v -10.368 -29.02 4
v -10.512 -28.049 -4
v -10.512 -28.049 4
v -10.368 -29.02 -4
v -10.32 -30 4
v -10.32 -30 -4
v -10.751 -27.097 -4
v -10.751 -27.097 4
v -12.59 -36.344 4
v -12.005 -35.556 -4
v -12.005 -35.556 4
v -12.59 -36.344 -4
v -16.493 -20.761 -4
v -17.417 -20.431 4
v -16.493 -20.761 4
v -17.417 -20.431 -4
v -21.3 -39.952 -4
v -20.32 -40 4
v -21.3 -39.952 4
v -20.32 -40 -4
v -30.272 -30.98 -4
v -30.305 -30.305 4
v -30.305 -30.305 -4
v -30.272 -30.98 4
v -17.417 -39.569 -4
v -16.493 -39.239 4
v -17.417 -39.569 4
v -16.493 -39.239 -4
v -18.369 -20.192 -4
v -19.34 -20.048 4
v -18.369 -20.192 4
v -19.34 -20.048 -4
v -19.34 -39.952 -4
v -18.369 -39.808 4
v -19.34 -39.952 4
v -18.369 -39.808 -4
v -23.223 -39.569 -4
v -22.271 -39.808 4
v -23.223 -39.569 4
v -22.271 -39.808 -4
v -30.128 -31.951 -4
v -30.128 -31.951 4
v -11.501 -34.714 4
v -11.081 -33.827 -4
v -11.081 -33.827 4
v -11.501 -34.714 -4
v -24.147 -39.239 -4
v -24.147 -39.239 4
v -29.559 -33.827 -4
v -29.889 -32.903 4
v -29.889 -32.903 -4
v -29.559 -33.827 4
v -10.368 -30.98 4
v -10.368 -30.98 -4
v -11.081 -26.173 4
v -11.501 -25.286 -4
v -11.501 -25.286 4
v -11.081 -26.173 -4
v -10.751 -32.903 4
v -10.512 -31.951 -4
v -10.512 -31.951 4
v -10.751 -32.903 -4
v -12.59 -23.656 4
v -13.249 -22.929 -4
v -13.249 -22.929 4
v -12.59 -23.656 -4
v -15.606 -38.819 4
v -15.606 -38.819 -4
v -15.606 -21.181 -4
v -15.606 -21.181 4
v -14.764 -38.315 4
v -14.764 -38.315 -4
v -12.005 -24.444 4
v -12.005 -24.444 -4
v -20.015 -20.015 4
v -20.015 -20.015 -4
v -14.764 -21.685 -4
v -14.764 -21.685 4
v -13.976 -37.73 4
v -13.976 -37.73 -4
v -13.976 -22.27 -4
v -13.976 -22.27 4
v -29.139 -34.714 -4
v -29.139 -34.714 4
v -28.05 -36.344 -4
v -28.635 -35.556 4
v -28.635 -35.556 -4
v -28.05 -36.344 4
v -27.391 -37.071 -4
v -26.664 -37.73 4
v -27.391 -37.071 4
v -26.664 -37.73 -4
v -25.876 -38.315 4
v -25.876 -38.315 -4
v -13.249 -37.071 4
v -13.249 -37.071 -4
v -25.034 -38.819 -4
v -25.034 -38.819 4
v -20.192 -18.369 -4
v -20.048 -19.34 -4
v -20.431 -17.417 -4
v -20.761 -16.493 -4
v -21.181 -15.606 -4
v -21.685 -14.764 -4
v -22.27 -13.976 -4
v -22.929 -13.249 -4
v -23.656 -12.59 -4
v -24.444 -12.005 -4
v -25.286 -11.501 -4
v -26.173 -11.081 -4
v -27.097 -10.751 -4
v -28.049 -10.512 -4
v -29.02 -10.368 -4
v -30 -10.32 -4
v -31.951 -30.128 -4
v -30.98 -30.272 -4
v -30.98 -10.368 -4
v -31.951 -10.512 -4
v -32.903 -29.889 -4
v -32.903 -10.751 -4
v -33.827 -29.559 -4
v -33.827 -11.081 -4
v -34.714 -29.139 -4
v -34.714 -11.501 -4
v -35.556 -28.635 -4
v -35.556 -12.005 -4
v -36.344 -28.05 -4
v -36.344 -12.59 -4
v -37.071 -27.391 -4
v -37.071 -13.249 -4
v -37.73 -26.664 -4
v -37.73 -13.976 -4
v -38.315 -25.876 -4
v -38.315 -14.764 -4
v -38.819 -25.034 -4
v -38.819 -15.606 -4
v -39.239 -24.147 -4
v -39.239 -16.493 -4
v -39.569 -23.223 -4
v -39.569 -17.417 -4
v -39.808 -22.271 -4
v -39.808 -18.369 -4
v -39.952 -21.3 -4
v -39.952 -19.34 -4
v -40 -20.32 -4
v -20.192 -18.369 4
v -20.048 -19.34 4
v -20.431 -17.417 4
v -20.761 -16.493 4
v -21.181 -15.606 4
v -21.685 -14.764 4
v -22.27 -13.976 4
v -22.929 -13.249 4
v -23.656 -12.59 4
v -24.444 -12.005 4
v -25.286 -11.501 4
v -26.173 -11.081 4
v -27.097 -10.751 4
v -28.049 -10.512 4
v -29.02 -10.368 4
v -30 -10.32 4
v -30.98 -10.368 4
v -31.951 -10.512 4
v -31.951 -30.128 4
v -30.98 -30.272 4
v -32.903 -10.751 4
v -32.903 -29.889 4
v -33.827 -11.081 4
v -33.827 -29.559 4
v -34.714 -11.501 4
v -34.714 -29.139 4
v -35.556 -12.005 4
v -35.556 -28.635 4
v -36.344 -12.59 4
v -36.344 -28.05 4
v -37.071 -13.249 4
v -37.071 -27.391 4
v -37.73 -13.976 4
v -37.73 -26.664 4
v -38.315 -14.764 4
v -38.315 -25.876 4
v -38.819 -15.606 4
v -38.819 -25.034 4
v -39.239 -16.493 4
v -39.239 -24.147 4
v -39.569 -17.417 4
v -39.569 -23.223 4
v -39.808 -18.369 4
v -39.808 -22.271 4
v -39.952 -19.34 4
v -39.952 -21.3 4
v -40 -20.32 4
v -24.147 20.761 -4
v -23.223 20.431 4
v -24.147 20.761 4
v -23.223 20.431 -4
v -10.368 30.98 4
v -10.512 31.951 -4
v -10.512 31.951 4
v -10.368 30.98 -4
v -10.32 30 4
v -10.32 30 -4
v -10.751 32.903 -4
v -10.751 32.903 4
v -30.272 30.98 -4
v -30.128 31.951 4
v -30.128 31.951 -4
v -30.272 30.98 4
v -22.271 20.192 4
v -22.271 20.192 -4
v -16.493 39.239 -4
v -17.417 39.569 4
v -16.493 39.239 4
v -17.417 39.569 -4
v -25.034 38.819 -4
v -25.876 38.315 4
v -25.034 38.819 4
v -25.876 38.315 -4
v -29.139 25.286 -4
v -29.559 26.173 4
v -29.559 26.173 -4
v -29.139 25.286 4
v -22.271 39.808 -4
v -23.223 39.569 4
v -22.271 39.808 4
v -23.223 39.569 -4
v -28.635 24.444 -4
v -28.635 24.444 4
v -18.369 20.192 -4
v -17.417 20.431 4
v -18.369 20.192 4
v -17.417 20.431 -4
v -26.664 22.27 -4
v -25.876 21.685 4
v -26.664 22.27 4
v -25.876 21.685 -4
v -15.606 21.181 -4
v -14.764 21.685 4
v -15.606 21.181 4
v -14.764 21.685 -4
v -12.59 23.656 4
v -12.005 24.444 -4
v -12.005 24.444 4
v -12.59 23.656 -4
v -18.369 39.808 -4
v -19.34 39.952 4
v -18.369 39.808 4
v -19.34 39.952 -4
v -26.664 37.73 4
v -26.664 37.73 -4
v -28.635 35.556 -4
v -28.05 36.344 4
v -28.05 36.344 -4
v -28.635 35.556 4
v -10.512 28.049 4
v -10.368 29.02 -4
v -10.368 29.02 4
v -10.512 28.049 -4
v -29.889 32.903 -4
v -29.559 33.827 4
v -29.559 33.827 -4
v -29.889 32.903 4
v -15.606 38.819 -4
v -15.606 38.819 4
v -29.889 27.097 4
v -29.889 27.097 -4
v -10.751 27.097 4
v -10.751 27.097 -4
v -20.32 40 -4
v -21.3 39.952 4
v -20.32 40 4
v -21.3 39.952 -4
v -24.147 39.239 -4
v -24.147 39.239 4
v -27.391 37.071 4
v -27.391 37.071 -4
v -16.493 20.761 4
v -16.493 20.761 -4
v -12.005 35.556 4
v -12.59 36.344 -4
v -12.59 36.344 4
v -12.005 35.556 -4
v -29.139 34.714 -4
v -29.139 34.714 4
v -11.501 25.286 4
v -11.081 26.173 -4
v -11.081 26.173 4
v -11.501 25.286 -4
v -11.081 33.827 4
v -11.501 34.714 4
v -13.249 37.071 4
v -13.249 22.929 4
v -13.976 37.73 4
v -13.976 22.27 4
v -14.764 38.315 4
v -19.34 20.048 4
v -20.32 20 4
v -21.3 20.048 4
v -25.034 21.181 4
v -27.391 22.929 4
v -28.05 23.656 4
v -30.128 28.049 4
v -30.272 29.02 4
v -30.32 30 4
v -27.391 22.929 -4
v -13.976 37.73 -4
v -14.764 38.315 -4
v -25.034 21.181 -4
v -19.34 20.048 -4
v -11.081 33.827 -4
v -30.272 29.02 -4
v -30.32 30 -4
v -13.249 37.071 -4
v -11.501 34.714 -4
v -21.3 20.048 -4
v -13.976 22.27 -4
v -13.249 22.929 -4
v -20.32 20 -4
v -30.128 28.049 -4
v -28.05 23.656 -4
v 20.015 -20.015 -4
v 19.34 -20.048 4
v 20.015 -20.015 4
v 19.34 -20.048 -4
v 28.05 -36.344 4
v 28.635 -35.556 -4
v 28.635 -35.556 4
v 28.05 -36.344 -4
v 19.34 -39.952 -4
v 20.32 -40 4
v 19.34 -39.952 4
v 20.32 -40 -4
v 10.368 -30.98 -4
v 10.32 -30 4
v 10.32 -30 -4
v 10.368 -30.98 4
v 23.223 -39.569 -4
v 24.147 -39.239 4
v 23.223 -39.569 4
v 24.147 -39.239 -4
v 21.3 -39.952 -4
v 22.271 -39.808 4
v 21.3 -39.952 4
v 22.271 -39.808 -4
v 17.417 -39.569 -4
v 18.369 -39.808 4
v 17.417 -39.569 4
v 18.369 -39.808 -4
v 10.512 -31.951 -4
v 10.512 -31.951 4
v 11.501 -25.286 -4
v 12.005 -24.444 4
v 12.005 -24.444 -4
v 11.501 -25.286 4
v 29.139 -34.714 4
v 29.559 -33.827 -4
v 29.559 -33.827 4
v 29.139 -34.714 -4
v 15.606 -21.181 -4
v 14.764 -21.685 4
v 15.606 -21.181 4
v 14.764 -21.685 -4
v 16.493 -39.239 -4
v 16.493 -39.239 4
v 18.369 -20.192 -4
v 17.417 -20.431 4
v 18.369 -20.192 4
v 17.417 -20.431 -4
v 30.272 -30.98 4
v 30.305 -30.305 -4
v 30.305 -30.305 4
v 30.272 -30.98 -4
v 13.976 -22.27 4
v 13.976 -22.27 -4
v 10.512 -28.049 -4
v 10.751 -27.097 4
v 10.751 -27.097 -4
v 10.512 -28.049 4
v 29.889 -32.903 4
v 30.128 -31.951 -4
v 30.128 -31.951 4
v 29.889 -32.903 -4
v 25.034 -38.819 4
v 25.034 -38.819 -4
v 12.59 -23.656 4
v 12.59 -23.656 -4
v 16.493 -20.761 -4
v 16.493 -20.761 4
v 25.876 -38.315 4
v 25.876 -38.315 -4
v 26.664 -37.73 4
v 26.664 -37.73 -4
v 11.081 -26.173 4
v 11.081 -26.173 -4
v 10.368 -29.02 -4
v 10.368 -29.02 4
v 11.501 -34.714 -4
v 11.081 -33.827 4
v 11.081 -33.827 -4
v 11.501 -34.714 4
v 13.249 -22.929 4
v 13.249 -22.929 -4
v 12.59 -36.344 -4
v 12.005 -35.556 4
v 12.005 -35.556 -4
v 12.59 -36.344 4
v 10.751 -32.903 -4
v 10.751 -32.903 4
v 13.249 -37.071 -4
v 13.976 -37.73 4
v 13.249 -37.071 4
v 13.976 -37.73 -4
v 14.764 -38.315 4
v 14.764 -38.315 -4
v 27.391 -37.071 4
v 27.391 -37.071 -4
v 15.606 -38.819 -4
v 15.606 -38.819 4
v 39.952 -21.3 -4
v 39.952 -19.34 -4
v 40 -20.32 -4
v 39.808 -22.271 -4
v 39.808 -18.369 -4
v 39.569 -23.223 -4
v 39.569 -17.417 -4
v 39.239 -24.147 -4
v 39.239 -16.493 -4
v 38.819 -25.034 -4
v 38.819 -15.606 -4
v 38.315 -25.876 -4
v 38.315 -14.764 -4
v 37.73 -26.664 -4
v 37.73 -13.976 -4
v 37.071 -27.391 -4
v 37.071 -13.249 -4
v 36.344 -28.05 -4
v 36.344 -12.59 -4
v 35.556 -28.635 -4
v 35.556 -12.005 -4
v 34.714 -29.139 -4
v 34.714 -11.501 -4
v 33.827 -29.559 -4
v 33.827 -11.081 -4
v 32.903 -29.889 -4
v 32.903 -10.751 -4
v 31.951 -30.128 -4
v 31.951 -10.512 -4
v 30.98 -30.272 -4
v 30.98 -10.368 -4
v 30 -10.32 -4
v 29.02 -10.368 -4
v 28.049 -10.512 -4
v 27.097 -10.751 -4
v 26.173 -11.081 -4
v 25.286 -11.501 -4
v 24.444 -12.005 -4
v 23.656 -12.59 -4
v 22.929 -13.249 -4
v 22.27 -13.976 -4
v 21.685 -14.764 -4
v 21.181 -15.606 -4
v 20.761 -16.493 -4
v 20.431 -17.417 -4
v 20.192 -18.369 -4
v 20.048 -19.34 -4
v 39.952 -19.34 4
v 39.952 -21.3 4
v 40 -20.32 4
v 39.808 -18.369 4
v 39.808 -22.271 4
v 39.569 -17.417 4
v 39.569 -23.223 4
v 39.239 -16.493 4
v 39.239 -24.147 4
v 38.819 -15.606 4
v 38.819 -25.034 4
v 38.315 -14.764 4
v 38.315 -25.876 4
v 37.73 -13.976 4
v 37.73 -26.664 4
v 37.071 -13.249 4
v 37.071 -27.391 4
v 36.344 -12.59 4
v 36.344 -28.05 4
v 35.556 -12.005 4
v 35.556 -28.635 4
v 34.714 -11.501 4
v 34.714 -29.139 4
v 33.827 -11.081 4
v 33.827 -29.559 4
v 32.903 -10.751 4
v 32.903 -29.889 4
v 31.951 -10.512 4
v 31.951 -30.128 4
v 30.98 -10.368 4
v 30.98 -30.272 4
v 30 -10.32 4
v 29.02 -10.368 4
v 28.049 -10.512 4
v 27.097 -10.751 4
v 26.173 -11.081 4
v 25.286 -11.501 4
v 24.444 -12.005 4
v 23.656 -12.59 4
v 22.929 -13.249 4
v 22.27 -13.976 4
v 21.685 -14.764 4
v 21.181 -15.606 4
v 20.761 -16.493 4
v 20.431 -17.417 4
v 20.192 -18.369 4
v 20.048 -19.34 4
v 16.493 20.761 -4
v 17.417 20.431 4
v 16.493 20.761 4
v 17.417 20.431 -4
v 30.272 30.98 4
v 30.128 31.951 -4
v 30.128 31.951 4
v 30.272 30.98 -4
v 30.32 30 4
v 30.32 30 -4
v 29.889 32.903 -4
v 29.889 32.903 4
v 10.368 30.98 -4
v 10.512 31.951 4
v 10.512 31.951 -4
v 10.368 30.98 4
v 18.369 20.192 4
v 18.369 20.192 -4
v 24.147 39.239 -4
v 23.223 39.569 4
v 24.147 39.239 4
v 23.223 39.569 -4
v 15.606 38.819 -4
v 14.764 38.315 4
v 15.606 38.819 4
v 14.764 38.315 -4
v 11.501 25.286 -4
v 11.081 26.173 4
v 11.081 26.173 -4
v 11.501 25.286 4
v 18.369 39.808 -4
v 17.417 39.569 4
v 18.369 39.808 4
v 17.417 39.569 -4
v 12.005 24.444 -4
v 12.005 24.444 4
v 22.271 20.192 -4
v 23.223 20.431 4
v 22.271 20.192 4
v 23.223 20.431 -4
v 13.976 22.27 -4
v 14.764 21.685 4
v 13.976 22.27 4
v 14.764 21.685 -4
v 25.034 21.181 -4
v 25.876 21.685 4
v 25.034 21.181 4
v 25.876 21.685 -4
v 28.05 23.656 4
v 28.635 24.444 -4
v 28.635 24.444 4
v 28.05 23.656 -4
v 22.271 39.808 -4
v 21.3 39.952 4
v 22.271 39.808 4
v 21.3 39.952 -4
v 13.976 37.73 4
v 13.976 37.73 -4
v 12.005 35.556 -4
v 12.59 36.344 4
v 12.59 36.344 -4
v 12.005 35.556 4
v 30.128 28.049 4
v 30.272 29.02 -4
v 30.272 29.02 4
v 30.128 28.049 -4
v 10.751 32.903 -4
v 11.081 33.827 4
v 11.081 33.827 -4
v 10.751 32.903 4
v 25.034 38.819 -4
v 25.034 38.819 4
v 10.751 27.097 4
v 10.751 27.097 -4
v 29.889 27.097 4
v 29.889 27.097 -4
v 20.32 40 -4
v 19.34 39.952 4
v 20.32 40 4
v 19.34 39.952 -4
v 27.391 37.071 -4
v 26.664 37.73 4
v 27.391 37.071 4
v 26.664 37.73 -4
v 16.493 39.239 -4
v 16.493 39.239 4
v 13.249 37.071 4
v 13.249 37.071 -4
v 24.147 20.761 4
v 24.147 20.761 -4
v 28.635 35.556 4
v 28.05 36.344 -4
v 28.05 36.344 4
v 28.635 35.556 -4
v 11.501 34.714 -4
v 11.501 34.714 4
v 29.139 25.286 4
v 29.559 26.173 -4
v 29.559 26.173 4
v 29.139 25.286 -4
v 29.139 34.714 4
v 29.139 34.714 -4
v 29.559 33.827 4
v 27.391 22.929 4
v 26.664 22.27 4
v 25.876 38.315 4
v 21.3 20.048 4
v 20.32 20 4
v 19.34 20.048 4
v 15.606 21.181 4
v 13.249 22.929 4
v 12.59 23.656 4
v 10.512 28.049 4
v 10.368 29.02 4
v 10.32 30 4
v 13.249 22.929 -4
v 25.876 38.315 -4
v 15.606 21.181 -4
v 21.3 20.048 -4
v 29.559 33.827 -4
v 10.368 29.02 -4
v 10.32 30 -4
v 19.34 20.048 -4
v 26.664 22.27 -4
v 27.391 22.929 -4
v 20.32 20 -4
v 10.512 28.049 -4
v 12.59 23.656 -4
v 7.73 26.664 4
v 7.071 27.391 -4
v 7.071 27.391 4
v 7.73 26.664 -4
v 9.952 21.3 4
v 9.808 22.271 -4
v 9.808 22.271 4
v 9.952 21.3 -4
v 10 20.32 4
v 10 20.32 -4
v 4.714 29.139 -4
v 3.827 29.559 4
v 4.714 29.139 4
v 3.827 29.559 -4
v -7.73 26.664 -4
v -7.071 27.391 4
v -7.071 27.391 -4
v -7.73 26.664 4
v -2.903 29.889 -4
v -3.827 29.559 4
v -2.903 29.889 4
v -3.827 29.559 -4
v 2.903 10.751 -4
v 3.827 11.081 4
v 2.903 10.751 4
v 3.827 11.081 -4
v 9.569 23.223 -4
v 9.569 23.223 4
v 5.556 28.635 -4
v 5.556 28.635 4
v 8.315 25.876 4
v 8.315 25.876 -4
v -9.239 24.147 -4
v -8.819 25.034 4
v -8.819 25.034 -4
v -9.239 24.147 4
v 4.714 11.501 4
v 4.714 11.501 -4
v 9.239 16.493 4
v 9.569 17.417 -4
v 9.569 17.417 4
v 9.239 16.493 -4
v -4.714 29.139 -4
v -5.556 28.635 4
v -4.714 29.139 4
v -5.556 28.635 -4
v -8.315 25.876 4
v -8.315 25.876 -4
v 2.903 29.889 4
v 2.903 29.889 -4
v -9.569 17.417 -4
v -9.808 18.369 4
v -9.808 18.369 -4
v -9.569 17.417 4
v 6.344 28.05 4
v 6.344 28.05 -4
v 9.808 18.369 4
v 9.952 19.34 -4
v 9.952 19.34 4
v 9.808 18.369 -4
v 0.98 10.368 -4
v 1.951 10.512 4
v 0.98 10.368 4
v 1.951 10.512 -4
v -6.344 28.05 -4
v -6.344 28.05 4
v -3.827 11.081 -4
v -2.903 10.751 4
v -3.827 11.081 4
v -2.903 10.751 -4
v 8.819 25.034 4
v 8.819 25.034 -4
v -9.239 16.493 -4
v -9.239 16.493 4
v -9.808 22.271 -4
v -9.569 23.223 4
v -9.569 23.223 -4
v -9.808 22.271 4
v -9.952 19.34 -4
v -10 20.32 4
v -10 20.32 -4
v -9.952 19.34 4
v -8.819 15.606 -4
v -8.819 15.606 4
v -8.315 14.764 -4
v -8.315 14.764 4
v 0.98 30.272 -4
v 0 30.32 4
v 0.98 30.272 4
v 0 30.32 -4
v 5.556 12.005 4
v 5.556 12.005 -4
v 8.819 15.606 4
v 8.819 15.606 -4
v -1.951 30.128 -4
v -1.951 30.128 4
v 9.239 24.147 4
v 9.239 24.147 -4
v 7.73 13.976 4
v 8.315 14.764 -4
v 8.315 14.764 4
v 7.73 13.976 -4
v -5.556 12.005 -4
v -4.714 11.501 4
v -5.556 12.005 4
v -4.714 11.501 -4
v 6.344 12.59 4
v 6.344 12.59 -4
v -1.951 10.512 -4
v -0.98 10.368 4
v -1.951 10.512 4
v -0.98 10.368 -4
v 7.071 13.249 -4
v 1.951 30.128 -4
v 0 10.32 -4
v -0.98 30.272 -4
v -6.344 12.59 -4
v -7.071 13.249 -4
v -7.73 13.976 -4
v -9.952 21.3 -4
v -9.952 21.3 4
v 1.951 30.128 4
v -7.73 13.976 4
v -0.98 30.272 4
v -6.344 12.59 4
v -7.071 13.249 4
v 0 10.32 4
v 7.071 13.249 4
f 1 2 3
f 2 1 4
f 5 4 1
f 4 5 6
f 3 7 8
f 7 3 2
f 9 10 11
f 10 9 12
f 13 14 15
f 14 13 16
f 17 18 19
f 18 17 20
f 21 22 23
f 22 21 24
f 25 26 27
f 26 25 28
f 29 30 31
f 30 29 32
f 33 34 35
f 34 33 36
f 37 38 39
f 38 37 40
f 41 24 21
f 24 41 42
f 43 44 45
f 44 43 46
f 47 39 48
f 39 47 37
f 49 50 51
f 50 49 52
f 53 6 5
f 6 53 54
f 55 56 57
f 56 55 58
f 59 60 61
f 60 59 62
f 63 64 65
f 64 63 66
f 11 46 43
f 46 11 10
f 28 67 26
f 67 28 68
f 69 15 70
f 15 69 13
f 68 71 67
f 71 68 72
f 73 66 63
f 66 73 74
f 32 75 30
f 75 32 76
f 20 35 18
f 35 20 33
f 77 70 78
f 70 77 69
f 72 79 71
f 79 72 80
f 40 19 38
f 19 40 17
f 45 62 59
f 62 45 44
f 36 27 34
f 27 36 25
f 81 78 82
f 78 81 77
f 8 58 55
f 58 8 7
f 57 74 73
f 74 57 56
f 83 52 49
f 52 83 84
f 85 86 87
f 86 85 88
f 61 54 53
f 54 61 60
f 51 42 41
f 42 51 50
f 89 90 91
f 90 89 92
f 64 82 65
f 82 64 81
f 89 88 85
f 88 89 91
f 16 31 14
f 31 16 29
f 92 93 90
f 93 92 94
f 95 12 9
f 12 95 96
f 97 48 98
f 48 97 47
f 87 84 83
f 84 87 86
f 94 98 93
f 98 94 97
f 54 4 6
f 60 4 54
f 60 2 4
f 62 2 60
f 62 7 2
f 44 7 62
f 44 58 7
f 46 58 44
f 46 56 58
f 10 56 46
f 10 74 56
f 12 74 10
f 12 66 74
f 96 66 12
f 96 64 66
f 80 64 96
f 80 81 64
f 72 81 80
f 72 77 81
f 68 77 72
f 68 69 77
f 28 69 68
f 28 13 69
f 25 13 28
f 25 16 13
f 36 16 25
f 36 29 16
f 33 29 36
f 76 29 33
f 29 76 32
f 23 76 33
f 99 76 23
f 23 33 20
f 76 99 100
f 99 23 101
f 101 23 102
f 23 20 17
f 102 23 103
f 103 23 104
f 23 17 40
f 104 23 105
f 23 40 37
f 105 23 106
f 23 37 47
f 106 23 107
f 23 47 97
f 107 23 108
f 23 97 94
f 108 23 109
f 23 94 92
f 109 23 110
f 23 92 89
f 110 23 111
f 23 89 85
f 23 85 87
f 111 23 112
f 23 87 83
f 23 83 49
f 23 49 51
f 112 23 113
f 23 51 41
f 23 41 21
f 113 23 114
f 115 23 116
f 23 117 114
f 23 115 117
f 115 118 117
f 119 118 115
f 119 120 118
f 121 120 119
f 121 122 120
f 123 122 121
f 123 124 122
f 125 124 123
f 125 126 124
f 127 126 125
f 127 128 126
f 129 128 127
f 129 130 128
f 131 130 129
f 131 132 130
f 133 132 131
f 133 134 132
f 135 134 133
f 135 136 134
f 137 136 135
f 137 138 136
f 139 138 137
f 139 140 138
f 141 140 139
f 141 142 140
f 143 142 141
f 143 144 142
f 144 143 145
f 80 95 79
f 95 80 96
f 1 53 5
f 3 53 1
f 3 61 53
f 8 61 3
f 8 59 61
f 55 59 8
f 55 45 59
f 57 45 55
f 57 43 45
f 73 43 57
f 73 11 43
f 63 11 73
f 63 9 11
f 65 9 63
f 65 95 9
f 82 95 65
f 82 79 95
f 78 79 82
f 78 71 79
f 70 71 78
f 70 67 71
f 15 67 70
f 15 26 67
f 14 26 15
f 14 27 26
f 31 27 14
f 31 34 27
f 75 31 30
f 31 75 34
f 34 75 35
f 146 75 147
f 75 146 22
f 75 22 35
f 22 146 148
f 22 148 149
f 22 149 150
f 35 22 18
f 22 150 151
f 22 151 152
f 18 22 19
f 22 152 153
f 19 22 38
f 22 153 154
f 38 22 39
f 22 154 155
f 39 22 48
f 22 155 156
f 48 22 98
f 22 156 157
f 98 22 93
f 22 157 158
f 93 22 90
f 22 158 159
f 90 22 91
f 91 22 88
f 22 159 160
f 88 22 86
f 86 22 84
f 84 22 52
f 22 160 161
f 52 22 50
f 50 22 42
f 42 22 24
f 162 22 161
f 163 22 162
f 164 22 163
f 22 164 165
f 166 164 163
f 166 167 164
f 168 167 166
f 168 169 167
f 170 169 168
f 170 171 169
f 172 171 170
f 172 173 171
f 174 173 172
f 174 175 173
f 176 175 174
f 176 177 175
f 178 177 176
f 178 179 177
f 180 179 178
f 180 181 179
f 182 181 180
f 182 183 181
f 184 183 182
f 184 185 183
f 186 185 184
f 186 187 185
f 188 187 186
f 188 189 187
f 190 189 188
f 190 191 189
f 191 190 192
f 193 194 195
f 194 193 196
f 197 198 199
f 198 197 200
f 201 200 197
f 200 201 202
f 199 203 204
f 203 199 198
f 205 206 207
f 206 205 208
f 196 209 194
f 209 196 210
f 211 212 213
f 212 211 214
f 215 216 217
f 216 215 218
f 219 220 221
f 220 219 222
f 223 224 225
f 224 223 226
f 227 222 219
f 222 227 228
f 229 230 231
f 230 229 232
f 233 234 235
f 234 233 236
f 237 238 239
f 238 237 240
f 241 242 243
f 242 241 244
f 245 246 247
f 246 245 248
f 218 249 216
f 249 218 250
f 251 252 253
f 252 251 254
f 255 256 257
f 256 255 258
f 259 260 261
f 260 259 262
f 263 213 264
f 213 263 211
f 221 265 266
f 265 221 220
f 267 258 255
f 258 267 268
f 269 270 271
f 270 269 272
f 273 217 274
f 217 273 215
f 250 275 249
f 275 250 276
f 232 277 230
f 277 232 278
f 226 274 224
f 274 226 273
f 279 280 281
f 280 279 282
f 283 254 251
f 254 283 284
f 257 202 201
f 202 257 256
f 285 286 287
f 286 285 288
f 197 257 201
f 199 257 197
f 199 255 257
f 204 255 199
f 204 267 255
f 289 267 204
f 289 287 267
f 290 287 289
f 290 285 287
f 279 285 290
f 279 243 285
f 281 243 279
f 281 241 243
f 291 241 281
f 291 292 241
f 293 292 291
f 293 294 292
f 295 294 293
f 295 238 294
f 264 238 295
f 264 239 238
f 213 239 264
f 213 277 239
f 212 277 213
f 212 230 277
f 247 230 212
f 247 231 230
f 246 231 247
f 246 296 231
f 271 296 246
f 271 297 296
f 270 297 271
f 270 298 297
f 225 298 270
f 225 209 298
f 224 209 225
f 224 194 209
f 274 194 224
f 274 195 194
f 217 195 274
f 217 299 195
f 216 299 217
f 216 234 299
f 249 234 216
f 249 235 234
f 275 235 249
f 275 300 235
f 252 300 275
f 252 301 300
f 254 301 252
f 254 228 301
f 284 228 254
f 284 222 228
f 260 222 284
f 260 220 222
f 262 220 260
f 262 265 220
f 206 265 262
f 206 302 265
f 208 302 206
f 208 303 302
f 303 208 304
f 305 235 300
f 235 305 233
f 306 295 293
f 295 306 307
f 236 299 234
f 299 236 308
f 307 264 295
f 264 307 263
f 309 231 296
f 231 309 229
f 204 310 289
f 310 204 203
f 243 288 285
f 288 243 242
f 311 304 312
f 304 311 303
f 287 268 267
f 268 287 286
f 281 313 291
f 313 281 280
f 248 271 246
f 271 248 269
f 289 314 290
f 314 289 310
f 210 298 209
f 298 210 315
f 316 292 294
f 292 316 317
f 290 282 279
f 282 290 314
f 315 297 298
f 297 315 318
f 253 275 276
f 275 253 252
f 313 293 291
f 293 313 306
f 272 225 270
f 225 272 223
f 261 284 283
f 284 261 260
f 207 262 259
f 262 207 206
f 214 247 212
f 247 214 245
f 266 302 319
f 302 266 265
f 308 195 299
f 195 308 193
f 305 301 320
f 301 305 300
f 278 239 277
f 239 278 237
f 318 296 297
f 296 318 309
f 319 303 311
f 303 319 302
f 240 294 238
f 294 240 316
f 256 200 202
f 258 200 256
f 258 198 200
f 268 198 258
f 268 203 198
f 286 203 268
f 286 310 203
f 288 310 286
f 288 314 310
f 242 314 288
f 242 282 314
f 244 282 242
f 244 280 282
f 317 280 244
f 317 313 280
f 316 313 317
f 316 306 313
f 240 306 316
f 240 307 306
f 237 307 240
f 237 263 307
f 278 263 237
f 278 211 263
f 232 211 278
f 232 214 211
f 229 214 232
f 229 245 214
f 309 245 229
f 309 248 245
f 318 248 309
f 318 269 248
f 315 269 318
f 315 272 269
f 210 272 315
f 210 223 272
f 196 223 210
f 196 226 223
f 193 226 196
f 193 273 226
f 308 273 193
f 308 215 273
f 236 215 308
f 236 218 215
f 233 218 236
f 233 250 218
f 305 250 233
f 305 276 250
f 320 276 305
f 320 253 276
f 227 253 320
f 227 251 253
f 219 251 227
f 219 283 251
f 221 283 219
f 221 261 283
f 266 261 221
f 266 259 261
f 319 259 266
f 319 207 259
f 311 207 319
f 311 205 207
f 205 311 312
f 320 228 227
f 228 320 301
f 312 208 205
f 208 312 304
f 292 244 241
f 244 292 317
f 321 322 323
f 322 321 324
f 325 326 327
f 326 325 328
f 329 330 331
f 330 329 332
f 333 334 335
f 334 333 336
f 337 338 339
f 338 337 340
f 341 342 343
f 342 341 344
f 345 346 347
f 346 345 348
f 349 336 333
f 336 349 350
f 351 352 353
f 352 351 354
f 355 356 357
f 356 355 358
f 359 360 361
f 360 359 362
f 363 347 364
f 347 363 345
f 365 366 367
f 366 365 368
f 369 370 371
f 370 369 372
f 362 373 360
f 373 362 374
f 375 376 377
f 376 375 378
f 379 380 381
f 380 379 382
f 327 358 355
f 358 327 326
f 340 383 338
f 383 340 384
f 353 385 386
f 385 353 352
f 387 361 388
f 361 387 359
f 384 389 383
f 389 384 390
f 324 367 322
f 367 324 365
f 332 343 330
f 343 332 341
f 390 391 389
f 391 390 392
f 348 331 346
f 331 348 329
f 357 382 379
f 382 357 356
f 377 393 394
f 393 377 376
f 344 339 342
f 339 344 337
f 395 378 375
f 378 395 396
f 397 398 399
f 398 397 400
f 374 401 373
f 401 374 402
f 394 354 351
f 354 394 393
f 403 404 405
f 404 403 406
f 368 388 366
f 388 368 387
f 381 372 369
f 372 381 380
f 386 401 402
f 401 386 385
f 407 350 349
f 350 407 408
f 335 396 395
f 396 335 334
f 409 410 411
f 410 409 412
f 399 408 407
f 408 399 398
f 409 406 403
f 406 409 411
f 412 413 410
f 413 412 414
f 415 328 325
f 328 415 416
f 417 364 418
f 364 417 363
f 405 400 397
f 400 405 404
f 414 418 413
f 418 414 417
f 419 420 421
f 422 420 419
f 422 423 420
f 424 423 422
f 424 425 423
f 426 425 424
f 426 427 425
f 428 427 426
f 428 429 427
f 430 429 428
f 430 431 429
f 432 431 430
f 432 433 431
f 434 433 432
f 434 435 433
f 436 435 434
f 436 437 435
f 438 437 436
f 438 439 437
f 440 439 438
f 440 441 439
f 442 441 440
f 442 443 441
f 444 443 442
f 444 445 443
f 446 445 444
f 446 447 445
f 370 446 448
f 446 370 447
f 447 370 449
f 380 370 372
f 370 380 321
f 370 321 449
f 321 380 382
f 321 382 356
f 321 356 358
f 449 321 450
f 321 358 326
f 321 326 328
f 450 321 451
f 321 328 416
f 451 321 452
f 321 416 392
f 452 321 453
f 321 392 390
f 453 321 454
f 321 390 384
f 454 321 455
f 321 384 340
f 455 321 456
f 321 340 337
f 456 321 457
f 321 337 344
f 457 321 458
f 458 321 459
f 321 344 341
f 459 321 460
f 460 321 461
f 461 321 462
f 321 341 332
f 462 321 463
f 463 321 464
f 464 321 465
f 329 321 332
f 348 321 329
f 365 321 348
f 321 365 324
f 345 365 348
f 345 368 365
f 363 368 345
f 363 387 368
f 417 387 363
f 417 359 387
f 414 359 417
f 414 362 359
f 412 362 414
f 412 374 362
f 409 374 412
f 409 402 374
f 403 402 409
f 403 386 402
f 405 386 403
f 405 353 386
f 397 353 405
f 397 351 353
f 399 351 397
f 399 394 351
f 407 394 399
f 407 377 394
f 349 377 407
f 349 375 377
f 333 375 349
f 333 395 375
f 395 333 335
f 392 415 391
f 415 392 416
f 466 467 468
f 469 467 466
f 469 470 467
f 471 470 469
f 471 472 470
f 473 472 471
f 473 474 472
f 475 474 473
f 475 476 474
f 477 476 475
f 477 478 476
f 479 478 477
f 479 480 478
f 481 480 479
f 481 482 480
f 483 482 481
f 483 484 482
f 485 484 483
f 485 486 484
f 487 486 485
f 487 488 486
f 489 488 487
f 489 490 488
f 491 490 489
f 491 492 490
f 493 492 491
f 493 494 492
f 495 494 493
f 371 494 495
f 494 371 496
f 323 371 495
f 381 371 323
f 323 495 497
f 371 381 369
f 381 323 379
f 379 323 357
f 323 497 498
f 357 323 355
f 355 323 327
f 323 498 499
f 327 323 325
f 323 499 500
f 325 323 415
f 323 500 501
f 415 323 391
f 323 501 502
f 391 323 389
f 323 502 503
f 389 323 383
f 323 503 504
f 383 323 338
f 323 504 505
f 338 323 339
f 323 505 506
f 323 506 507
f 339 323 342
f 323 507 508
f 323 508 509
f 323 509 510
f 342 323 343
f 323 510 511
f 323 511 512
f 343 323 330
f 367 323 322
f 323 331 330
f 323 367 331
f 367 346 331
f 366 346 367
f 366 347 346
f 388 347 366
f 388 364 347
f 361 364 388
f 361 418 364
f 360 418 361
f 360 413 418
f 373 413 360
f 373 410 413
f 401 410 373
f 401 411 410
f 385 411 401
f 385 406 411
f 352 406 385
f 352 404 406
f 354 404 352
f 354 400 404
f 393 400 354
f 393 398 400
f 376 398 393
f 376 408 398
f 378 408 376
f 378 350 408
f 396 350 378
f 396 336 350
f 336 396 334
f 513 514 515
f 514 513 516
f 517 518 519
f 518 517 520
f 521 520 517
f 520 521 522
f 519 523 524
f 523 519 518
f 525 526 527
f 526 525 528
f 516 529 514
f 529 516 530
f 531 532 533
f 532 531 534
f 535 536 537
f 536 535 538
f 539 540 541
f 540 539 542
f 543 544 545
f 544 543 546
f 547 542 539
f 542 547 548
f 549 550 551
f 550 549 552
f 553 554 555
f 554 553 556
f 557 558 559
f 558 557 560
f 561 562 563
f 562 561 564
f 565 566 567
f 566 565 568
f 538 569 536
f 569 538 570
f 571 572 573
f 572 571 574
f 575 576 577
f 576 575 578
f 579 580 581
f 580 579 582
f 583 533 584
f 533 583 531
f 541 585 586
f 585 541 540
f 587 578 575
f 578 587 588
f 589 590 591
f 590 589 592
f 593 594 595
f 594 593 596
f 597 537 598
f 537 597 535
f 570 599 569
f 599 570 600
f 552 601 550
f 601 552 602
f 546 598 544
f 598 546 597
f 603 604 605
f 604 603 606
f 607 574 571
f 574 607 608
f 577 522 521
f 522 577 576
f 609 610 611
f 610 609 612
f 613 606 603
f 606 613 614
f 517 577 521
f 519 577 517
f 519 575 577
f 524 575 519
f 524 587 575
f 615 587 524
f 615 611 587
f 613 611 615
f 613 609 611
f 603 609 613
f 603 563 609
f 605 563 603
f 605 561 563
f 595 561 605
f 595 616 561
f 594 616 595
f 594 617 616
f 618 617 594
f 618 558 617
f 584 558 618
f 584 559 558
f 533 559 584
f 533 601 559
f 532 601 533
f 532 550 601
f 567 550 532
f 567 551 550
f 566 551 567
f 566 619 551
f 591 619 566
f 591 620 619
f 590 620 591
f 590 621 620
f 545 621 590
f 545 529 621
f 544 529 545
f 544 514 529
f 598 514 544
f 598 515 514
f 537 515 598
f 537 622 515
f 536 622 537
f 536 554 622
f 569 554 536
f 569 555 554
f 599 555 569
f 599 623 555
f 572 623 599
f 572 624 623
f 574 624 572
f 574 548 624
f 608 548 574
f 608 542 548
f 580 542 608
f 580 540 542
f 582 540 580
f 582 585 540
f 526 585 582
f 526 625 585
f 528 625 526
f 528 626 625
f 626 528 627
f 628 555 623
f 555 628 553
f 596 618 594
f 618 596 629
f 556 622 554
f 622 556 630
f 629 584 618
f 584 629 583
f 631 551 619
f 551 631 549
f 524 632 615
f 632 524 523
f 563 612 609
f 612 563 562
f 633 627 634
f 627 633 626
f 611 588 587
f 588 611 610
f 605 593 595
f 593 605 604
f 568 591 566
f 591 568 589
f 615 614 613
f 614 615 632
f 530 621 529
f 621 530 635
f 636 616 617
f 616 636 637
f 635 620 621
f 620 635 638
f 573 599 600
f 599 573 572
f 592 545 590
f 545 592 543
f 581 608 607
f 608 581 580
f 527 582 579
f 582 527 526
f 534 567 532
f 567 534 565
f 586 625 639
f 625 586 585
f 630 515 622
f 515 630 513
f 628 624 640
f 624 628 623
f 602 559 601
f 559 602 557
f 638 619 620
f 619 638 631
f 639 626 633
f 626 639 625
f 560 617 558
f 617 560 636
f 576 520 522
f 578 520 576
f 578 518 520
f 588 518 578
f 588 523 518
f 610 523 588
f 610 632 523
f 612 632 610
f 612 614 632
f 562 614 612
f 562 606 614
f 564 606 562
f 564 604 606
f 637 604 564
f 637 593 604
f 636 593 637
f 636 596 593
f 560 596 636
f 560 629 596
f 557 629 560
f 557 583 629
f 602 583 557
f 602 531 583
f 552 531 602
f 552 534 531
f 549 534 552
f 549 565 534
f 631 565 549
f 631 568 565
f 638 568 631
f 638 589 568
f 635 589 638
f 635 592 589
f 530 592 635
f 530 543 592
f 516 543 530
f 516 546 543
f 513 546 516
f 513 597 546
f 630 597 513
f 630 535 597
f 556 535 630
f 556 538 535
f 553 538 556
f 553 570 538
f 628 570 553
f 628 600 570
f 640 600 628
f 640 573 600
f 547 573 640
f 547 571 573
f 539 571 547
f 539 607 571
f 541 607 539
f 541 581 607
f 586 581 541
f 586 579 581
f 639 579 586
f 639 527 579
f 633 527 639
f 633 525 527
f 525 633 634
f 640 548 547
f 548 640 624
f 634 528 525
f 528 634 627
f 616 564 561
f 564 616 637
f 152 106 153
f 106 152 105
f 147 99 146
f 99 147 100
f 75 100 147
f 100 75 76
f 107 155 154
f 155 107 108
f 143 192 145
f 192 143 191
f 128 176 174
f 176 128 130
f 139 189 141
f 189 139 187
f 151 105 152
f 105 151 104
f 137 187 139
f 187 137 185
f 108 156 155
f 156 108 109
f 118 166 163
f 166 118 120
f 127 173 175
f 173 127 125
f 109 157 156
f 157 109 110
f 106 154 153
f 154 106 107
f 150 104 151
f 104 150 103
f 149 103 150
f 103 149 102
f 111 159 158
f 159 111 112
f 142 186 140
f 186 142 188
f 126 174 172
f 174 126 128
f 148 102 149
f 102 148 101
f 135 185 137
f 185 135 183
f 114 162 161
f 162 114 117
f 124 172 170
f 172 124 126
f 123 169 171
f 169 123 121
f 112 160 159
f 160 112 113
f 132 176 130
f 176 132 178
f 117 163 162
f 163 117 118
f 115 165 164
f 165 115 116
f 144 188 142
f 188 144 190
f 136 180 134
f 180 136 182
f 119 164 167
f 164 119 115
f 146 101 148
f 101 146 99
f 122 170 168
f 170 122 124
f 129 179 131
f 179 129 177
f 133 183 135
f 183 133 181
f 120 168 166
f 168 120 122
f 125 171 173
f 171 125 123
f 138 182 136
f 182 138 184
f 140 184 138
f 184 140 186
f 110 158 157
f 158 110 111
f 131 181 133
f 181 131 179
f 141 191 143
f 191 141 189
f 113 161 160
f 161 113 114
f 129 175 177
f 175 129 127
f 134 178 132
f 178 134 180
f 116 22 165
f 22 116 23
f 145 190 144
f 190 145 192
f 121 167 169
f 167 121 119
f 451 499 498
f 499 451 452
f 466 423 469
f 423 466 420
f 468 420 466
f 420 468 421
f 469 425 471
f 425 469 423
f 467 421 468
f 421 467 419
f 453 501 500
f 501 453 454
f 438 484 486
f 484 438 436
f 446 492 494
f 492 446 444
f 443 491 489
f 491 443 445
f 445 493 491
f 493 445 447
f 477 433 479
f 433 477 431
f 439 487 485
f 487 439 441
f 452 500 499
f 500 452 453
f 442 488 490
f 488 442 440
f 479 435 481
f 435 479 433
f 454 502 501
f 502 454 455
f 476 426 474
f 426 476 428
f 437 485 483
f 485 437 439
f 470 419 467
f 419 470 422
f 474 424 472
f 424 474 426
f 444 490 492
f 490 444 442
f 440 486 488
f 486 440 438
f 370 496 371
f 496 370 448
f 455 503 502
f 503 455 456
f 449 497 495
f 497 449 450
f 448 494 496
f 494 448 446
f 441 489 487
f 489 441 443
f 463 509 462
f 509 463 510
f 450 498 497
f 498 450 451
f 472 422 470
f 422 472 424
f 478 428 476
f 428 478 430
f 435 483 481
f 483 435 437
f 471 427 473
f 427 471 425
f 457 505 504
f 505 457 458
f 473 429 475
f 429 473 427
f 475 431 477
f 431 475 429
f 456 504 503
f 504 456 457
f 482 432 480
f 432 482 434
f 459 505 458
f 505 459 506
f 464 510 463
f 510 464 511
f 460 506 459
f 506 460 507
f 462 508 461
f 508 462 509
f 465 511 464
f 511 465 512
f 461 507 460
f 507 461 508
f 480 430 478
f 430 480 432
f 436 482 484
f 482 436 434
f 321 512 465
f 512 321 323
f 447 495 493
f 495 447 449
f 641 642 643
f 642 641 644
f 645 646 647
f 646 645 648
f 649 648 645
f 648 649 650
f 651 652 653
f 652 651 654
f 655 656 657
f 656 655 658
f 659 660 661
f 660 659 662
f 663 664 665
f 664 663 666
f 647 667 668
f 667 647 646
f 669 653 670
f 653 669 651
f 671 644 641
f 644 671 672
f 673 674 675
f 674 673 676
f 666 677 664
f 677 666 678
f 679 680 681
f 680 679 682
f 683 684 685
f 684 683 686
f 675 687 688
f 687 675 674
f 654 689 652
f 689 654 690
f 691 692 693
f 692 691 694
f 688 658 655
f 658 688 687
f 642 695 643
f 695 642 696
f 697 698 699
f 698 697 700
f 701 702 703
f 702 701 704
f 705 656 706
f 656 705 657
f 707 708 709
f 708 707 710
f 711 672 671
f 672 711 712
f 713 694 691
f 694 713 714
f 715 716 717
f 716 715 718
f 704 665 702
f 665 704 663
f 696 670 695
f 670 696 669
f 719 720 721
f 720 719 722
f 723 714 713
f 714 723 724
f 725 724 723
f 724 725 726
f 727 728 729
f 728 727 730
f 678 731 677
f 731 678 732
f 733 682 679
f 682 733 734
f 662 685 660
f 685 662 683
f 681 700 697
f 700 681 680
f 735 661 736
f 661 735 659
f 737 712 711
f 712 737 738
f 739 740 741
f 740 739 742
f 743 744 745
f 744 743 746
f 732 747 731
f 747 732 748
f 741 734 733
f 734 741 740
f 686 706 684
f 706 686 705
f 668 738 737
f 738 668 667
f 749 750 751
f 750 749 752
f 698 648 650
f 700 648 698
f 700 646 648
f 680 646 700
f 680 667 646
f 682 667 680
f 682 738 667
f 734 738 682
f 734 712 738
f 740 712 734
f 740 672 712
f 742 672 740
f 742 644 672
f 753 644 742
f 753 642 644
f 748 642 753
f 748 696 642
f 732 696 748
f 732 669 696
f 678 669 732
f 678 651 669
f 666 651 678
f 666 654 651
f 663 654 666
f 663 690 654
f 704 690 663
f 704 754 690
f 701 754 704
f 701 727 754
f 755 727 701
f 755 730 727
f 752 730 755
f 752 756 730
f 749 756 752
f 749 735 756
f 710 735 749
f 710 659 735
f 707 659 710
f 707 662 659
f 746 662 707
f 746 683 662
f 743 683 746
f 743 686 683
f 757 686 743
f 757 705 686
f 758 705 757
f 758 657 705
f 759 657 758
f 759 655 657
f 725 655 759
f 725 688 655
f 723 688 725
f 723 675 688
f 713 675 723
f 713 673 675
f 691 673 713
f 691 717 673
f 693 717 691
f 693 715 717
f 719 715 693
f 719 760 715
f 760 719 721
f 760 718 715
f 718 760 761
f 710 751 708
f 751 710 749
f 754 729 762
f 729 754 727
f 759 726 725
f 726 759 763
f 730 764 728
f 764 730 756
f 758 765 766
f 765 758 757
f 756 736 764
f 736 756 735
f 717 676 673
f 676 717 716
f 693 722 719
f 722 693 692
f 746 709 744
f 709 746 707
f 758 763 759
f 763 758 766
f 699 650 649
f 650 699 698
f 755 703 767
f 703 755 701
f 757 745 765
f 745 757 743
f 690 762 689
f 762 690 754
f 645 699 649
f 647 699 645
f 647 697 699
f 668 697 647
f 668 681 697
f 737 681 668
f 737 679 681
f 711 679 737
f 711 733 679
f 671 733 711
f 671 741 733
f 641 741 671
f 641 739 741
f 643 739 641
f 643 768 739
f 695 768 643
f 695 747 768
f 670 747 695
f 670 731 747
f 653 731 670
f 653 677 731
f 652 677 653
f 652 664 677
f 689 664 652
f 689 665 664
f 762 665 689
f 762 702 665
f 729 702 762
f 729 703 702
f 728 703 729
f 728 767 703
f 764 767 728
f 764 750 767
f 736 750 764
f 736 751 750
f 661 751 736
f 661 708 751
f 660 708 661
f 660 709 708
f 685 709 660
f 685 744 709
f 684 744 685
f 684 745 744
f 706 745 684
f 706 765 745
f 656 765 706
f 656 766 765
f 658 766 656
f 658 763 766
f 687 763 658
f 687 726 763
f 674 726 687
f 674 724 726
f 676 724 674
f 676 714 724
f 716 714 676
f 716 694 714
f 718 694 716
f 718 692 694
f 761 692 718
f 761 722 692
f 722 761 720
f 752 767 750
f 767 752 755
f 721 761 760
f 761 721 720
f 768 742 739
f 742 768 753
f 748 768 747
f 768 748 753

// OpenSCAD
// file: vslot-2020.scad
// OpenBuilds V-Slot 20x20, millimetres.
// Source: ../../datasheets/openbuilds-vslot-20x20.pdf, page 1.
// Open directly for a short inspection sample; `use` for library modules.
sample_length = 60;
section_only = false;

module vslot_2020_profile(corner_radius=0.5, centre_notch=0.2) {
    // Dimensioned features from drawing.
    half_size = 10;
    mouth_half = 9.16/2;
    throat_half = 6.25/2;
    channel_half = 11/2;
    shoulder_y = half_size - 1.80;
    floor_y = shoulder_y - 4.30;
    // 90-degree V: each face has a 45-degree slope.
    throat_y = half_size - (mouth_half-throat_half);
    // Adjacent diagonal cavity walls straddle y=x. Their normal
    // separation is the specified 1.50 mm web thickness.
    diagonal_offset = 1.50/sqrt(2);
    channel_knee_y = channel_half + diagonal_offset;
    floor_half = floor_y - diagonal_offset;

    // Corner radius and tiny floor-centre notch are visually estimated:
    // the PDF depicts them but does not dimension them.
    difference() {
        offset(r=corner_radius,$fn=24)
            square([20-2*corner_radius,20-2*corner_radius],center=true);
        circle(d=4.20,$fn=64);
        for(a=[0:90:270]) rotate(a)
            polygon([
                [-mouth_half,11], [mouth_half,11],
                [mouth_half,half_size], [throat_half,throat_y],
                [throat_half,shoulder_y], [channel_half,shoulder_y],
                [channel_half,channel_knee_y], [floor_half,floor_y],
                [centre_notch,floor_y], [0,floor_y-centre_notch],
                [-centre_notch,floor_y], [-floor_half,floor_y],
                [-channel_half,channel_knee_y], [-channel_half,shoulder_y],
                [-throat_half,shoulder_y], [-throat_half,throat_y],
                [-mouth_half,half_size]
            ]);
    }
}

module vslot_2020(length=500) {
    assert(length>0,"Rail length must be positive");
    linear_extrude(height=length,convexity=10) vslot_2020_profile();
}

if(section_only) vslot_2020_profile();
else color([0.66,0.71,0.75]) vslot_2020(sample_length);
// file: wheel-spacer.scad
// Nominal 6 mm spacer family, axis Z, wheel face at Z=0.
// Supplier: https://www.makerstore.com.au/product/shim-eccentric-8-6/
// 8 mm AF, 10 mm flange, 5 mm bore, 7.11 mm plate hole, ~0.79 travel.
// Flange/collar thicknesses and 7.08 pilot OD are provisional.
function spacer_eccentricity() = 0.79/2;
function spacer_plate_hole() = 7.11;
module wheel_spacer(eccentric=false,angle=0) {
    e=spacer_eccentricity();
    // Origin stays on the axle; the locating pilot is offset from it.
    rotate([0,0,angle]) difference() {
        if(eccentric) translate([-e,0,0]) union() {
            cylinder(h=5,d=8/cos(30),$fn=6);
            translate([0,0,5]) cylinder(h=1,d=10,$fn=48);
            translate([0,0,6]) cylinder(h=1.5,d=7.08,$fn=48);
        }
        else cylinder(h=6,d=8,$fn=48);
        translate([0,0,-0.1]) cylinder(h=8,d=5,$fn=48);
    }
}
color([0.65,0.69,0.72]) wheel_spacer(true);
// file: vslot-wheel.scad
// Solid V wheel reference: ../../datasheets/solid-v-wheel-drawing.jpg.
// Supplier: https://www.makerstore.com.au/product/wheel-solidv-kit/
// Axis Z, centred at origin. Nominal assembly, not manufacturing CAD.
show_bearings = true;

function vwheel_width() = 10.23; // kit spec; drawing rounds this to 10.20
function vwheel_od() = 23.90;
function vwheel_land() = 5.90;
// Derived tangent fit against the 9.16 mm mouth and 45-degree rail faces.
function vwheel_2020_offset() = 10-9.16/2 + vwheel_od()/2 + vwheel_land()/2;

module vslot_wheel(bearings=true, facets=64) {
    w=vwheel_width();
    r=vwheel_od()/2;
    land=vwheel_land();
    edge_r=r-(w-land)/2; // 45-degree mating chamfers
    color([0.12,0.14,0.16]) rotate_extrude($fn=facets,convexity=6)
        polygon([[8,-w/2],[edge_r,-w/2],[r,-land/2],
                 [r,land/2],[edge_r,w/2],[8,w/2],
                 [8,0.115],[7,0.115],[7,-0.115],[8,-0.115]]);
    // Two nominal 625 bearings: 5 mm bore, 16 mm OD, 5 mm wide.
    // Internal rolling elements omitted; centre shim holds inner races apart.
    if(bearings) {
        for(z=[-w/2,0.115]) translate([0,0,z]) {
            color([0.65,0.69,0.72]) difference() {
                cylinder(h=5,d=16,$fn=facets);
                translate([0,0,-0.01]) cylinder(h=5.02,d=5,$fn=facets);
            }
            for(face=[0,4.95]) color([0.18,0.20,0.22])
                translate([0,0,face]) difference() {
                    cylinder(h=0.05,d=13.5,$fn=facets);
                    translate([0,0,-0.01]) cylinder(h=0.07,d=7.5,$fn=facets);
                }
        }
        color([0.65,0.69,0.72]) difference() {
            cylinder(h=0.23,d=10,center=true,$fn=facets);
            cylinder(h=0.25,d=5,center=true,$fn=facets);
        }
    }
}

vslot_wheel(show_bearings);
// main file
// Cura modifier for compact-carriage.stl: a cylinder round every wheel
// station, the plate's own boss size and thickness, in the plate's
// coordinates. Load with the plate, select both, Merge Models (Ctrl+Alt+G),
// then Per Model Settings on this one: Modify settings for overlaps, Infill
// only, Infill Density 100 %.
use <compact-carriage.scad>
d         = 20;   // compact-carriage.scad boss_r 10
thickness = 8;
spacing   = 60;
for(p=concat(carriage_z_holes(spacing), carriage_x_holes(spacing)))
    translate([p[0], p[1], 0]) cylinder(h=thickness, d=d, center=true, $fn=64);
